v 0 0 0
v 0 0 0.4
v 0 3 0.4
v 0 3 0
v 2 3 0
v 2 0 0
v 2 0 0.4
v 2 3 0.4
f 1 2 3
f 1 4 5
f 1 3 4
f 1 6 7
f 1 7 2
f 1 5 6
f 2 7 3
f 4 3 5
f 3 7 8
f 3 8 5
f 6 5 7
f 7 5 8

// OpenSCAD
/* Warning, this is a very basic generator with a lot of approximation 
input data : [XDFN, QHB, 2x3x0.4mm, 8, , A, C04-21367A]
generated by com.zoubworld.electronics.cad.model3d.Basic
Date : Sun Feb 15 10:50:49 CET 2026
*/

//body
color("black")
translate([0,0,0])
cube([2.0,3.0,0.4], center=false);
